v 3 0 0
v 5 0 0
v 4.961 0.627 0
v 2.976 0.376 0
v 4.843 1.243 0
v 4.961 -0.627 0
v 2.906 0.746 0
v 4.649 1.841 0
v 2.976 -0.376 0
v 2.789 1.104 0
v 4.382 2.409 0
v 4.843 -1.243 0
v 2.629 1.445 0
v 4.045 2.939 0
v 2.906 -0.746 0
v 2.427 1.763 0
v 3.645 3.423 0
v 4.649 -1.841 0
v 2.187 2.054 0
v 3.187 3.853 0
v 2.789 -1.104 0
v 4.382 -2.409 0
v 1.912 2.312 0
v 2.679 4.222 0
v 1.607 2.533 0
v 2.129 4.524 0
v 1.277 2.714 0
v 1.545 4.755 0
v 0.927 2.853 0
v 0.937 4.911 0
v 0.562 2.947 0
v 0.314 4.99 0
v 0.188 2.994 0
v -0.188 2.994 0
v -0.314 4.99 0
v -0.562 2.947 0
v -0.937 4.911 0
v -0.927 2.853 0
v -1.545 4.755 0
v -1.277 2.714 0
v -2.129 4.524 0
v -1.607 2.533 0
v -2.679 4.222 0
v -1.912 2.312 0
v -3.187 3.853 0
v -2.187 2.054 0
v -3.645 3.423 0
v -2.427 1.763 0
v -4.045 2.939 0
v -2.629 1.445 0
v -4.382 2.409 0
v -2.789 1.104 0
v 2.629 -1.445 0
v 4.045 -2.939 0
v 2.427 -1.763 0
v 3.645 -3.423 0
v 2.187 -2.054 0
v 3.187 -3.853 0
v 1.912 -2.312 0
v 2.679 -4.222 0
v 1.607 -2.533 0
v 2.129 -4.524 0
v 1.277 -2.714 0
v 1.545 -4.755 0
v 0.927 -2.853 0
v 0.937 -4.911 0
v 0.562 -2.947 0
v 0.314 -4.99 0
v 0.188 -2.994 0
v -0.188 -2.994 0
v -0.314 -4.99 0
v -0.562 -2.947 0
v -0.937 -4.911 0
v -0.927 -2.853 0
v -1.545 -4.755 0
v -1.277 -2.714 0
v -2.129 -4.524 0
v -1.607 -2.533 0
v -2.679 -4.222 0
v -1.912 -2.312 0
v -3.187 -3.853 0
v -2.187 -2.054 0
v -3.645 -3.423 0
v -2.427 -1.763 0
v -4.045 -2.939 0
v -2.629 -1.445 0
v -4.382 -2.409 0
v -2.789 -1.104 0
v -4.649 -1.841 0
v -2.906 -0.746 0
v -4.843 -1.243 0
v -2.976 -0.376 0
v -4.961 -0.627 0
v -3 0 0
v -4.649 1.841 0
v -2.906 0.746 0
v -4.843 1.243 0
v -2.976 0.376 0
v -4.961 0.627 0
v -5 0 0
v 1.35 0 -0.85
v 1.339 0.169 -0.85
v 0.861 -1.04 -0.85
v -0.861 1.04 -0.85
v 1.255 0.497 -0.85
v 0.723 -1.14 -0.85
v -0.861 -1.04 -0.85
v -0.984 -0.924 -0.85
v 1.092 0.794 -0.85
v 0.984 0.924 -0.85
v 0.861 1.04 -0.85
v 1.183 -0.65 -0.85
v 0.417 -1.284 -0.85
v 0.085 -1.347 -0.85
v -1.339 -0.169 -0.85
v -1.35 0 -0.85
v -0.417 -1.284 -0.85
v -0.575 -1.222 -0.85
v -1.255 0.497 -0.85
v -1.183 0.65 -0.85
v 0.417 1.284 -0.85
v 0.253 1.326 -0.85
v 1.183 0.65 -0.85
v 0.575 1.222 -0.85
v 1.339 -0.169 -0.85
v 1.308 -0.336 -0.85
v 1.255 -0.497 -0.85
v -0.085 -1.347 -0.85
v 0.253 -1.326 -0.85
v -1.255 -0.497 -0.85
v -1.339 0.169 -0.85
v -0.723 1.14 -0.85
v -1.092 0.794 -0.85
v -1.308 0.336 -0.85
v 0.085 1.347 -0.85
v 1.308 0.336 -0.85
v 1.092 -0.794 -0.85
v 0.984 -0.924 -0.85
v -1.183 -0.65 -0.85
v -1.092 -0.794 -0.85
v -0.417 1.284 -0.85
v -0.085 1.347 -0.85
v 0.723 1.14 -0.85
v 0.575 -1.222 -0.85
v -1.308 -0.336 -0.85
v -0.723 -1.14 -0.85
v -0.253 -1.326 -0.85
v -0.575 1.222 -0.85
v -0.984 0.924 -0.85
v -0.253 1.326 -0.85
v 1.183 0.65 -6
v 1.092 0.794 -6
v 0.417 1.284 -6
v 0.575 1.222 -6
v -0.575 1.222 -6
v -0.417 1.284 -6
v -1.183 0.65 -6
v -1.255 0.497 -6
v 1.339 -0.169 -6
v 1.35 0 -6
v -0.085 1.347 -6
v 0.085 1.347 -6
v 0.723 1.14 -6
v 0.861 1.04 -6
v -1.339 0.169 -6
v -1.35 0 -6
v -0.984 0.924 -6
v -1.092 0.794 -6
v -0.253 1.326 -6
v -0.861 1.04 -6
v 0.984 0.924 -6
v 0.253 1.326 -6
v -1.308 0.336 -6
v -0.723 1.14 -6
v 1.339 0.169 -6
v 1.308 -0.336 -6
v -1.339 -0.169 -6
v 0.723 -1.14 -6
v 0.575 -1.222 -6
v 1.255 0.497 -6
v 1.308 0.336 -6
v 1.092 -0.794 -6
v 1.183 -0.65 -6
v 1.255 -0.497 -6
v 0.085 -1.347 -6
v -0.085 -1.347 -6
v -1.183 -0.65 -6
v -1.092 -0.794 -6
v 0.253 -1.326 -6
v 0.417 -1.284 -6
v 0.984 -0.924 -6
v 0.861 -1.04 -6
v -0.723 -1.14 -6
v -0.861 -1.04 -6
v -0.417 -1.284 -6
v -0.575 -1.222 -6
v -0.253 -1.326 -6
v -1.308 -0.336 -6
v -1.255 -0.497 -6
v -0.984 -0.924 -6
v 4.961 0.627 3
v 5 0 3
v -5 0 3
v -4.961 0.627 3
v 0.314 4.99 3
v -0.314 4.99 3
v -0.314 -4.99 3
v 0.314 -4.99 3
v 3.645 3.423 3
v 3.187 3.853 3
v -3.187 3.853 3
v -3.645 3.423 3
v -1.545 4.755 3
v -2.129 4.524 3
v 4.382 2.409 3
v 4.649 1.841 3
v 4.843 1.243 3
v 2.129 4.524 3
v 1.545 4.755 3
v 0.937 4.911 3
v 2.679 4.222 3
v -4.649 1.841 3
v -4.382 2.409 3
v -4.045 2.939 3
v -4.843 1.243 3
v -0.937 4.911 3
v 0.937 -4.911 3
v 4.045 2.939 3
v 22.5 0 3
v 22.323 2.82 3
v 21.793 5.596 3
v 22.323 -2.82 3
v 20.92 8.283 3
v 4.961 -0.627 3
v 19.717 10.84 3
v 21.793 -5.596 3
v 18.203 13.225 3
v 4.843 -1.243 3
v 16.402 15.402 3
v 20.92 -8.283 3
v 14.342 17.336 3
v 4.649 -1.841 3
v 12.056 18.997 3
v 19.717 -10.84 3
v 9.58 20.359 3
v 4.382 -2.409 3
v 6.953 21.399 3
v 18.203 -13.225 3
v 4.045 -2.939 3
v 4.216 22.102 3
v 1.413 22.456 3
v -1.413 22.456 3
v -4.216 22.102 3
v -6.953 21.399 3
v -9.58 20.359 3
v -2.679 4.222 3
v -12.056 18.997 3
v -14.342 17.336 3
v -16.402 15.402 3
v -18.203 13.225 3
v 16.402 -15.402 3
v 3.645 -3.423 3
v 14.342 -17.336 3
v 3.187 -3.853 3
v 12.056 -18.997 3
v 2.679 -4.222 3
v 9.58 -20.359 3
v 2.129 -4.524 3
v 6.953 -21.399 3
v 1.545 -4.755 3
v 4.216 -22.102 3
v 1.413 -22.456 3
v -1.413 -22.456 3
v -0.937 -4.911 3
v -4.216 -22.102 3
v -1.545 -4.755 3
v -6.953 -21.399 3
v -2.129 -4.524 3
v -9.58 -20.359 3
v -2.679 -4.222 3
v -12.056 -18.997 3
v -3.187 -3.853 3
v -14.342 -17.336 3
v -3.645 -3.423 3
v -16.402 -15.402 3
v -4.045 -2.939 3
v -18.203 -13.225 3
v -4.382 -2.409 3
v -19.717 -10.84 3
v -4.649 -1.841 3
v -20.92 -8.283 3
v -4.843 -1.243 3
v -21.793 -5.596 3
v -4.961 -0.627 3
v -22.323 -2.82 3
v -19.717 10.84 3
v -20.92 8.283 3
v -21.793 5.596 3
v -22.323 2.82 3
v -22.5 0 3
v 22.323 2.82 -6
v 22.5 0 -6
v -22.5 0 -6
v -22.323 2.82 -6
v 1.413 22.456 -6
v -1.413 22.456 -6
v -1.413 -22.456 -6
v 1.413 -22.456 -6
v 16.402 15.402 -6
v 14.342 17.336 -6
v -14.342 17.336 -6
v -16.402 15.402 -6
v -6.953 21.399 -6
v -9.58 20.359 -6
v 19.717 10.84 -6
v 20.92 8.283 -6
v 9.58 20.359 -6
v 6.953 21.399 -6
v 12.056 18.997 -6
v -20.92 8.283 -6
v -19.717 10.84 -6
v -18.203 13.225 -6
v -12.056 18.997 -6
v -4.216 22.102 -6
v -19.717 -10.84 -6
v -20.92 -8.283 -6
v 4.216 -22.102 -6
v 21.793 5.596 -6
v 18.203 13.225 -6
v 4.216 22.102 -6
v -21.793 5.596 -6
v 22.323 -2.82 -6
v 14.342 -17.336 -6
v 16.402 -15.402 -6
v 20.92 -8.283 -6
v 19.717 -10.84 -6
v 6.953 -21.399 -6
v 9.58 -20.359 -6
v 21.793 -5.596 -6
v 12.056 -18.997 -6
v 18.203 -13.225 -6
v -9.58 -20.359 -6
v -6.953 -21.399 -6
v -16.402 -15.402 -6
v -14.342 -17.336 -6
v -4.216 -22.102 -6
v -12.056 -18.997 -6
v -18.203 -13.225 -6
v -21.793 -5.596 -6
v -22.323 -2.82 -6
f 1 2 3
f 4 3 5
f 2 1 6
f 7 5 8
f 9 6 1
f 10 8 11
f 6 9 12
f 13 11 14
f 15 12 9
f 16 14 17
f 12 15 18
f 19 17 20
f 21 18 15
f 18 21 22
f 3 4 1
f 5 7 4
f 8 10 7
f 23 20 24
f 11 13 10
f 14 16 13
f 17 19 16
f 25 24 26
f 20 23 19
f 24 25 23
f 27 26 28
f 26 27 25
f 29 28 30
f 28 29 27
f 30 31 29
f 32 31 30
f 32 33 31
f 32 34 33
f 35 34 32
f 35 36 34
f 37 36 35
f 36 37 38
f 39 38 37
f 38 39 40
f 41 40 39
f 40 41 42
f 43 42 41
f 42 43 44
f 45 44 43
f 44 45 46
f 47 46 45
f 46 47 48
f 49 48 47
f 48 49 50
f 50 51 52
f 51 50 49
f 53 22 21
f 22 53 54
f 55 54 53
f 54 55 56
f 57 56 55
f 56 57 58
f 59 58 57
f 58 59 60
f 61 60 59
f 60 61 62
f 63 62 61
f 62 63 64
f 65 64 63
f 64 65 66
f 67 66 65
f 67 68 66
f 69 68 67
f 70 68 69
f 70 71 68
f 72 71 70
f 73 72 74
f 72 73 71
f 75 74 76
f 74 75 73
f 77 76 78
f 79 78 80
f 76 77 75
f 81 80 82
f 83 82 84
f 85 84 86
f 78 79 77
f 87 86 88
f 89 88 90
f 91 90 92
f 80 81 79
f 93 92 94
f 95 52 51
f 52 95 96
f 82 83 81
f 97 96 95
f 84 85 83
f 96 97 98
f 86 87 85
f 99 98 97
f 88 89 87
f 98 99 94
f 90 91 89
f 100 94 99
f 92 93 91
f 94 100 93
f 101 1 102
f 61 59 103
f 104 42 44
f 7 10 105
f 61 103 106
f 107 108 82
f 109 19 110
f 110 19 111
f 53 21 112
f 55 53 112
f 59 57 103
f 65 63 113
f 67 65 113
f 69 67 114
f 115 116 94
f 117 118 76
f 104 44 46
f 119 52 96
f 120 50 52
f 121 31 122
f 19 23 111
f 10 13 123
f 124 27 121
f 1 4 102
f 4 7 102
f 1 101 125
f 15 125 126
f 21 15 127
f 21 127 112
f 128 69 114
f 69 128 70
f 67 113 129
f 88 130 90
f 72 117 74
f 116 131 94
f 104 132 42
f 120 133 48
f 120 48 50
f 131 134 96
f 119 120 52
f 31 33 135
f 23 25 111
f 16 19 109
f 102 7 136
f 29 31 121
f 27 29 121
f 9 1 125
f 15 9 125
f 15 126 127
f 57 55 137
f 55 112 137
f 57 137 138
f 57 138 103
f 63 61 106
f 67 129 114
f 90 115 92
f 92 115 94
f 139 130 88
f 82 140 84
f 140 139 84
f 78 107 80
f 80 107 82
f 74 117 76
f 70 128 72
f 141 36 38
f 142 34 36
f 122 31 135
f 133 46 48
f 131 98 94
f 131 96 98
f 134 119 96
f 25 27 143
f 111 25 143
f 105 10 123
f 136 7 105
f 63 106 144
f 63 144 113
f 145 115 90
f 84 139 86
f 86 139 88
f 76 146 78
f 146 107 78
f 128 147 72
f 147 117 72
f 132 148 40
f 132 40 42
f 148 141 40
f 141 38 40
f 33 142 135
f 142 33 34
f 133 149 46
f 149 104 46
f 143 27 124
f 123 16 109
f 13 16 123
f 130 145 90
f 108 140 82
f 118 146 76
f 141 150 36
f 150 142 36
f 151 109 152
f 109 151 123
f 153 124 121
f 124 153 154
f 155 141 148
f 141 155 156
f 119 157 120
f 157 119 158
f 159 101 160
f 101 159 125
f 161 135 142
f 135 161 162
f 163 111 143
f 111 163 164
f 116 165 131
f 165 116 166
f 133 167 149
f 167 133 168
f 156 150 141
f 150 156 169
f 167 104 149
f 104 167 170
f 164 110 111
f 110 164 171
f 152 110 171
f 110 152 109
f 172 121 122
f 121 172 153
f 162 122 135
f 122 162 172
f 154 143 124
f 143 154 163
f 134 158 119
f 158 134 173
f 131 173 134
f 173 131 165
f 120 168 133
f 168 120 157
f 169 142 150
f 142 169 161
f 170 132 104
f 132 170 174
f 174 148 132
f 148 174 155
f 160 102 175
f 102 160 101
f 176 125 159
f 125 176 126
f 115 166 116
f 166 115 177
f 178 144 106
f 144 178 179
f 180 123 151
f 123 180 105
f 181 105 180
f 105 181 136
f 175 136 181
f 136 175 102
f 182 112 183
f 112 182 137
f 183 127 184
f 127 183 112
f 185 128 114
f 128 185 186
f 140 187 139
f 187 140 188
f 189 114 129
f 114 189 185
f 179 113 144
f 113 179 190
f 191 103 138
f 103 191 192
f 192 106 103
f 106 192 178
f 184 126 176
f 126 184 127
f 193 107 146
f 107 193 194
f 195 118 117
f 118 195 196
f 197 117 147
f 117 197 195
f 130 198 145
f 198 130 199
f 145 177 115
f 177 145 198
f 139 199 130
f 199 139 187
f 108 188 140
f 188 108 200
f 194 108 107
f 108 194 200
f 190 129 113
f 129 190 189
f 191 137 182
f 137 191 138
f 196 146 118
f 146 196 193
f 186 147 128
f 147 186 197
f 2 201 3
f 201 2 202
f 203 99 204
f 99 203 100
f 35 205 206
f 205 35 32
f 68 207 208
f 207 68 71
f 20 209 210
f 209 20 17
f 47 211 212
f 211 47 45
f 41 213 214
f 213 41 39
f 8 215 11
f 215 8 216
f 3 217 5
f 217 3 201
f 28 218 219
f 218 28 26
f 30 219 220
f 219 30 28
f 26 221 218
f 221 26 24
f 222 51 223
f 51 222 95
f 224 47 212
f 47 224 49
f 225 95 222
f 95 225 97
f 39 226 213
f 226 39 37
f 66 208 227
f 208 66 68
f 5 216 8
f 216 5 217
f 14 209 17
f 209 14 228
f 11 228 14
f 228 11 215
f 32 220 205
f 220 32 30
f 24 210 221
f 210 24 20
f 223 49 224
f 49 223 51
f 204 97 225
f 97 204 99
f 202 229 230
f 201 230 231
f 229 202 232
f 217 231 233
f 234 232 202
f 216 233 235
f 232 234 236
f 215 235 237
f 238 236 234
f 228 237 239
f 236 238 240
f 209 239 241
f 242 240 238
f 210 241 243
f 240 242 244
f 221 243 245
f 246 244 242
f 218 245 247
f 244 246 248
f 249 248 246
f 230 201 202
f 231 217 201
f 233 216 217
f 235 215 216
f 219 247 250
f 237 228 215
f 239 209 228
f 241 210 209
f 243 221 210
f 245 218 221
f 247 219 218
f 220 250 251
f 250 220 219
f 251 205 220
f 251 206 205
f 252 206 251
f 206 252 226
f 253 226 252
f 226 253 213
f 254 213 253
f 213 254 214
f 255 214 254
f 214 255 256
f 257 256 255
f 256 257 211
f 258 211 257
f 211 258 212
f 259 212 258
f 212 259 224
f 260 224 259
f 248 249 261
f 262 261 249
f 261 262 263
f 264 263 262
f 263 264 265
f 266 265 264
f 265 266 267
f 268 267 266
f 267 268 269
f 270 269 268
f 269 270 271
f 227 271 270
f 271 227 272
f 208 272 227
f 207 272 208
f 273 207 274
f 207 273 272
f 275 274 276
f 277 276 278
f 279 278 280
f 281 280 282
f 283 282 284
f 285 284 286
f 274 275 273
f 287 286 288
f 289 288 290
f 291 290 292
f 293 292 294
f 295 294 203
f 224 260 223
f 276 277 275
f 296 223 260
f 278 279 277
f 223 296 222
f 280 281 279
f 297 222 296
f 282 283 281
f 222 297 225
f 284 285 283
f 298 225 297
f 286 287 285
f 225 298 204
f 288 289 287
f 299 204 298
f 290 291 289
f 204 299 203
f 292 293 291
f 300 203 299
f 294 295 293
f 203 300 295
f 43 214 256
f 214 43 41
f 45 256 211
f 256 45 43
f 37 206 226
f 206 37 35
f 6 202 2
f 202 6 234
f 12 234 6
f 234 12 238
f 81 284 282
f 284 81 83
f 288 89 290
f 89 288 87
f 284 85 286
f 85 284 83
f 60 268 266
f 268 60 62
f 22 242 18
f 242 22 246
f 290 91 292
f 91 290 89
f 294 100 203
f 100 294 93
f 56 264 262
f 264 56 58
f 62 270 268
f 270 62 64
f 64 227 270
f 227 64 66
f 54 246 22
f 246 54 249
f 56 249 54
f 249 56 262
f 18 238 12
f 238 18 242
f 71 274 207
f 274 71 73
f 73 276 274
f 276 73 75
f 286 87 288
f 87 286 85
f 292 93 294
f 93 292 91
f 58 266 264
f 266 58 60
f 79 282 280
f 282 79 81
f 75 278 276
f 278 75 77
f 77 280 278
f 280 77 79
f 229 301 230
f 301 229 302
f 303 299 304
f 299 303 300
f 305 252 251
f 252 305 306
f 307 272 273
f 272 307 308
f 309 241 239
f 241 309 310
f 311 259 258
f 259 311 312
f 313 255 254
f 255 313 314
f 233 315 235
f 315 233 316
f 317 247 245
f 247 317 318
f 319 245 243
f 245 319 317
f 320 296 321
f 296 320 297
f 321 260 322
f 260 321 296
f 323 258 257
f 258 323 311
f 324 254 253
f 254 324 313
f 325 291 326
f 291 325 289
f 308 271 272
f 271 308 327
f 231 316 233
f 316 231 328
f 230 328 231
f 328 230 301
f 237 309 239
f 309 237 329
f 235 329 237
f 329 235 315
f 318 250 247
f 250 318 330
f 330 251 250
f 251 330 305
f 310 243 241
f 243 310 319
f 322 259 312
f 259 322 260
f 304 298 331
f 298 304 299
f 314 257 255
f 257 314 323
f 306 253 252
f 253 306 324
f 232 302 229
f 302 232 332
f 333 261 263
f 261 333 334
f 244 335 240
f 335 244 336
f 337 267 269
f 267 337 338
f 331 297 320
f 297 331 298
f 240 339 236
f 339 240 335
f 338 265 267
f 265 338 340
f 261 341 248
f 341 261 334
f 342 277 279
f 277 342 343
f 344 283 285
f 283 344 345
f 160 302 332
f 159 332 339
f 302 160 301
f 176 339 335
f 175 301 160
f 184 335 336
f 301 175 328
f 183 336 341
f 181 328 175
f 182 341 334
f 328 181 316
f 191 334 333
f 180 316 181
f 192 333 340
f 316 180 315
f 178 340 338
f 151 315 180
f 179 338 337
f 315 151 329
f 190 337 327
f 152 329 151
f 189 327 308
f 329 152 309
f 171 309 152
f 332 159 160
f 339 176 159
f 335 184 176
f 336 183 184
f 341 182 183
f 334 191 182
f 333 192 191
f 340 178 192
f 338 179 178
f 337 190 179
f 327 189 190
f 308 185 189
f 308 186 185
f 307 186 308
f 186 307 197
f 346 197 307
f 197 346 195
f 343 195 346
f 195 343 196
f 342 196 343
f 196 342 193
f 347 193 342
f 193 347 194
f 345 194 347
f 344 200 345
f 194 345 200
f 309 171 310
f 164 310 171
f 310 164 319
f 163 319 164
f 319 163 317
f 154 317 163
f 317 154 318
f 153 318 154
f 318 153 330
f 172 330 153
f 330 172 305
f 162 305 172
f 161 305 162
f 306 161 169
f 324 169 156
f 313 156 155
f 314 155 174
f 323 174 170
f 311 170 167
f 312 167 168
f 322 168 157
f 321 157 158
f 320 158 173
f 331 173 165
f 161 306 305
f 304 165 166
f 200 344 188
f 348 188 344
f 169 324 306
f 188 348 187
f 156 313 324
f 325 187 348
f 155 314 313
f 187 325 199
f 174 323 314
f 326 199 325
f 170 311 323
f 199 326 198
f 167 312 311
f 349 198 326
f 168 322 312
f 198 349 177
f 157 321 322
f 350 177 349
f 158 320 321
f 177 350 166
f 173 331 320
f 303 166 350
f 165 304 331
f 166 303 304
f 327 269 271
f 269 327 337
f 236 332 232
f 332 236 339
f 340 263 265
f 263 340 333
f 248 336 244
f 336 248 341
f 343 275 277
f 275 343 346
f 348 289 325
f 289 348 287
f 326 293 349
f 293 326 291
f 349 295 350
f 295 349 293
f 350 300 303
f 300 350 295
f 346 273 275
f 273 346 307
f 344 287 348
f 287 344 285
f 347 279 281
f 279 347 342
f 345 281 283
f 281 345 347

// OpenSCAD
$fn = 50;


difference() {
	union() {
		translate(v = [0, 0, -6.0000000000]) {
			cylinder(h = 9, r = 22.5000000000);
		}
	}
	union() {
		translate(v = [0, 0, 0]) {
			rotate(a = [0, 0, 0]) {
				difference() {
					union() {
						translate(v = [0, 0, -9.0000000000]) {
							cylinder(h = 9, r = 1.0000000000);
						}
						translate(v = [0, 0, -0.8500000000]) {
							cylinder(h = 0.8500000000, r1 = 1.3500000000, r2 = 3.0000000000);
						}
						translate(v = [0, 0, -9.0000000000]) {
							cylinder(h = 9, r = 1.3500000000);
						}
						translate(v = [0, 0, -9.0000000000]) {
							cylinder(h = 9, r = 1.0000000000);
						}
					}
					union();
				}
			}
		}
		#cylinder(h = 3, r = 5.0000000000);
	}
}
